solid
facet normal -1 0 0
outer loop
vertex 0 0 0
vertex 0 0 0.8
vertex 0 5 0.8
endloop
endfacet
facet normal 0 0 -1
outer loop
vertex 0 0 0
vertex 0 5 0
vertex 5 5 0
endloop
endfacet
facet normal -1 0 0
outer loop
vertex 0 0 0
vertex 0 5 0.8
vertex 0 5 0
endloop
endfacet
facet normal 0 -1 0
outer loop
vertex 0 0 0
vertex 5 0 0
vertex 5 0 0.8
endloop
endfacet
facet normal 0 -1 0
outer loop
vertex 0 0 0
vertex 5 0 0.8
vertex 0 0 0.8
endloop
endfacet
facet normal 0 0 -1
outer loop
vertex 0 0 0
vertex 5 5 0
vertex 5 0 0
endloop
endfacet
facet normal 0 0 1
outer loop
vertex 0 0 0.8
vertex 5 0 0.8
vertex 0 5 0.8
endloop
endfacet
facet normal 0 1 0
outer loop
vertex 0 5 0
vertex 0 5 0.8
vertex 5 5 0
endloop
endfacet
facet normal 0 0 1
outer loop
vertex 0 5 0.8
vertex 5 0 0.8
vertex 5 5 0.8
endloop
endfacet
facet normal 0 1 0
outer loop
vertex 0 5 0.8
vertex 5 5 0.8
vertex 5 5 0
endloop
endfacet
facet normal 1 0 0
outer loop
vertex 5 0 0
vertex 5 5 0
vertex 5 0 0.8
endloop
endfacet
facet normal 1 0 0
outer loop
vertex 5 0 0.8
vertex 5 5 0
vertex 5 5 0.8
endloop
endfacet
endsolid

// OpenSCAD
/* Warning, this is a very basic generator with a lot of approximation 
input data : [WQFN, MHC, 5x5x0.8mm, 32, , A, C04-25414A]
generated by com.zoubworld.electronics.cad.model3d.Basic
Date : Sun Feb 15 10:50:49 CET 2026
*/

//body
color("black")
translate([0,0,0])
cube([5.0,5.0,0.8], center=false);
